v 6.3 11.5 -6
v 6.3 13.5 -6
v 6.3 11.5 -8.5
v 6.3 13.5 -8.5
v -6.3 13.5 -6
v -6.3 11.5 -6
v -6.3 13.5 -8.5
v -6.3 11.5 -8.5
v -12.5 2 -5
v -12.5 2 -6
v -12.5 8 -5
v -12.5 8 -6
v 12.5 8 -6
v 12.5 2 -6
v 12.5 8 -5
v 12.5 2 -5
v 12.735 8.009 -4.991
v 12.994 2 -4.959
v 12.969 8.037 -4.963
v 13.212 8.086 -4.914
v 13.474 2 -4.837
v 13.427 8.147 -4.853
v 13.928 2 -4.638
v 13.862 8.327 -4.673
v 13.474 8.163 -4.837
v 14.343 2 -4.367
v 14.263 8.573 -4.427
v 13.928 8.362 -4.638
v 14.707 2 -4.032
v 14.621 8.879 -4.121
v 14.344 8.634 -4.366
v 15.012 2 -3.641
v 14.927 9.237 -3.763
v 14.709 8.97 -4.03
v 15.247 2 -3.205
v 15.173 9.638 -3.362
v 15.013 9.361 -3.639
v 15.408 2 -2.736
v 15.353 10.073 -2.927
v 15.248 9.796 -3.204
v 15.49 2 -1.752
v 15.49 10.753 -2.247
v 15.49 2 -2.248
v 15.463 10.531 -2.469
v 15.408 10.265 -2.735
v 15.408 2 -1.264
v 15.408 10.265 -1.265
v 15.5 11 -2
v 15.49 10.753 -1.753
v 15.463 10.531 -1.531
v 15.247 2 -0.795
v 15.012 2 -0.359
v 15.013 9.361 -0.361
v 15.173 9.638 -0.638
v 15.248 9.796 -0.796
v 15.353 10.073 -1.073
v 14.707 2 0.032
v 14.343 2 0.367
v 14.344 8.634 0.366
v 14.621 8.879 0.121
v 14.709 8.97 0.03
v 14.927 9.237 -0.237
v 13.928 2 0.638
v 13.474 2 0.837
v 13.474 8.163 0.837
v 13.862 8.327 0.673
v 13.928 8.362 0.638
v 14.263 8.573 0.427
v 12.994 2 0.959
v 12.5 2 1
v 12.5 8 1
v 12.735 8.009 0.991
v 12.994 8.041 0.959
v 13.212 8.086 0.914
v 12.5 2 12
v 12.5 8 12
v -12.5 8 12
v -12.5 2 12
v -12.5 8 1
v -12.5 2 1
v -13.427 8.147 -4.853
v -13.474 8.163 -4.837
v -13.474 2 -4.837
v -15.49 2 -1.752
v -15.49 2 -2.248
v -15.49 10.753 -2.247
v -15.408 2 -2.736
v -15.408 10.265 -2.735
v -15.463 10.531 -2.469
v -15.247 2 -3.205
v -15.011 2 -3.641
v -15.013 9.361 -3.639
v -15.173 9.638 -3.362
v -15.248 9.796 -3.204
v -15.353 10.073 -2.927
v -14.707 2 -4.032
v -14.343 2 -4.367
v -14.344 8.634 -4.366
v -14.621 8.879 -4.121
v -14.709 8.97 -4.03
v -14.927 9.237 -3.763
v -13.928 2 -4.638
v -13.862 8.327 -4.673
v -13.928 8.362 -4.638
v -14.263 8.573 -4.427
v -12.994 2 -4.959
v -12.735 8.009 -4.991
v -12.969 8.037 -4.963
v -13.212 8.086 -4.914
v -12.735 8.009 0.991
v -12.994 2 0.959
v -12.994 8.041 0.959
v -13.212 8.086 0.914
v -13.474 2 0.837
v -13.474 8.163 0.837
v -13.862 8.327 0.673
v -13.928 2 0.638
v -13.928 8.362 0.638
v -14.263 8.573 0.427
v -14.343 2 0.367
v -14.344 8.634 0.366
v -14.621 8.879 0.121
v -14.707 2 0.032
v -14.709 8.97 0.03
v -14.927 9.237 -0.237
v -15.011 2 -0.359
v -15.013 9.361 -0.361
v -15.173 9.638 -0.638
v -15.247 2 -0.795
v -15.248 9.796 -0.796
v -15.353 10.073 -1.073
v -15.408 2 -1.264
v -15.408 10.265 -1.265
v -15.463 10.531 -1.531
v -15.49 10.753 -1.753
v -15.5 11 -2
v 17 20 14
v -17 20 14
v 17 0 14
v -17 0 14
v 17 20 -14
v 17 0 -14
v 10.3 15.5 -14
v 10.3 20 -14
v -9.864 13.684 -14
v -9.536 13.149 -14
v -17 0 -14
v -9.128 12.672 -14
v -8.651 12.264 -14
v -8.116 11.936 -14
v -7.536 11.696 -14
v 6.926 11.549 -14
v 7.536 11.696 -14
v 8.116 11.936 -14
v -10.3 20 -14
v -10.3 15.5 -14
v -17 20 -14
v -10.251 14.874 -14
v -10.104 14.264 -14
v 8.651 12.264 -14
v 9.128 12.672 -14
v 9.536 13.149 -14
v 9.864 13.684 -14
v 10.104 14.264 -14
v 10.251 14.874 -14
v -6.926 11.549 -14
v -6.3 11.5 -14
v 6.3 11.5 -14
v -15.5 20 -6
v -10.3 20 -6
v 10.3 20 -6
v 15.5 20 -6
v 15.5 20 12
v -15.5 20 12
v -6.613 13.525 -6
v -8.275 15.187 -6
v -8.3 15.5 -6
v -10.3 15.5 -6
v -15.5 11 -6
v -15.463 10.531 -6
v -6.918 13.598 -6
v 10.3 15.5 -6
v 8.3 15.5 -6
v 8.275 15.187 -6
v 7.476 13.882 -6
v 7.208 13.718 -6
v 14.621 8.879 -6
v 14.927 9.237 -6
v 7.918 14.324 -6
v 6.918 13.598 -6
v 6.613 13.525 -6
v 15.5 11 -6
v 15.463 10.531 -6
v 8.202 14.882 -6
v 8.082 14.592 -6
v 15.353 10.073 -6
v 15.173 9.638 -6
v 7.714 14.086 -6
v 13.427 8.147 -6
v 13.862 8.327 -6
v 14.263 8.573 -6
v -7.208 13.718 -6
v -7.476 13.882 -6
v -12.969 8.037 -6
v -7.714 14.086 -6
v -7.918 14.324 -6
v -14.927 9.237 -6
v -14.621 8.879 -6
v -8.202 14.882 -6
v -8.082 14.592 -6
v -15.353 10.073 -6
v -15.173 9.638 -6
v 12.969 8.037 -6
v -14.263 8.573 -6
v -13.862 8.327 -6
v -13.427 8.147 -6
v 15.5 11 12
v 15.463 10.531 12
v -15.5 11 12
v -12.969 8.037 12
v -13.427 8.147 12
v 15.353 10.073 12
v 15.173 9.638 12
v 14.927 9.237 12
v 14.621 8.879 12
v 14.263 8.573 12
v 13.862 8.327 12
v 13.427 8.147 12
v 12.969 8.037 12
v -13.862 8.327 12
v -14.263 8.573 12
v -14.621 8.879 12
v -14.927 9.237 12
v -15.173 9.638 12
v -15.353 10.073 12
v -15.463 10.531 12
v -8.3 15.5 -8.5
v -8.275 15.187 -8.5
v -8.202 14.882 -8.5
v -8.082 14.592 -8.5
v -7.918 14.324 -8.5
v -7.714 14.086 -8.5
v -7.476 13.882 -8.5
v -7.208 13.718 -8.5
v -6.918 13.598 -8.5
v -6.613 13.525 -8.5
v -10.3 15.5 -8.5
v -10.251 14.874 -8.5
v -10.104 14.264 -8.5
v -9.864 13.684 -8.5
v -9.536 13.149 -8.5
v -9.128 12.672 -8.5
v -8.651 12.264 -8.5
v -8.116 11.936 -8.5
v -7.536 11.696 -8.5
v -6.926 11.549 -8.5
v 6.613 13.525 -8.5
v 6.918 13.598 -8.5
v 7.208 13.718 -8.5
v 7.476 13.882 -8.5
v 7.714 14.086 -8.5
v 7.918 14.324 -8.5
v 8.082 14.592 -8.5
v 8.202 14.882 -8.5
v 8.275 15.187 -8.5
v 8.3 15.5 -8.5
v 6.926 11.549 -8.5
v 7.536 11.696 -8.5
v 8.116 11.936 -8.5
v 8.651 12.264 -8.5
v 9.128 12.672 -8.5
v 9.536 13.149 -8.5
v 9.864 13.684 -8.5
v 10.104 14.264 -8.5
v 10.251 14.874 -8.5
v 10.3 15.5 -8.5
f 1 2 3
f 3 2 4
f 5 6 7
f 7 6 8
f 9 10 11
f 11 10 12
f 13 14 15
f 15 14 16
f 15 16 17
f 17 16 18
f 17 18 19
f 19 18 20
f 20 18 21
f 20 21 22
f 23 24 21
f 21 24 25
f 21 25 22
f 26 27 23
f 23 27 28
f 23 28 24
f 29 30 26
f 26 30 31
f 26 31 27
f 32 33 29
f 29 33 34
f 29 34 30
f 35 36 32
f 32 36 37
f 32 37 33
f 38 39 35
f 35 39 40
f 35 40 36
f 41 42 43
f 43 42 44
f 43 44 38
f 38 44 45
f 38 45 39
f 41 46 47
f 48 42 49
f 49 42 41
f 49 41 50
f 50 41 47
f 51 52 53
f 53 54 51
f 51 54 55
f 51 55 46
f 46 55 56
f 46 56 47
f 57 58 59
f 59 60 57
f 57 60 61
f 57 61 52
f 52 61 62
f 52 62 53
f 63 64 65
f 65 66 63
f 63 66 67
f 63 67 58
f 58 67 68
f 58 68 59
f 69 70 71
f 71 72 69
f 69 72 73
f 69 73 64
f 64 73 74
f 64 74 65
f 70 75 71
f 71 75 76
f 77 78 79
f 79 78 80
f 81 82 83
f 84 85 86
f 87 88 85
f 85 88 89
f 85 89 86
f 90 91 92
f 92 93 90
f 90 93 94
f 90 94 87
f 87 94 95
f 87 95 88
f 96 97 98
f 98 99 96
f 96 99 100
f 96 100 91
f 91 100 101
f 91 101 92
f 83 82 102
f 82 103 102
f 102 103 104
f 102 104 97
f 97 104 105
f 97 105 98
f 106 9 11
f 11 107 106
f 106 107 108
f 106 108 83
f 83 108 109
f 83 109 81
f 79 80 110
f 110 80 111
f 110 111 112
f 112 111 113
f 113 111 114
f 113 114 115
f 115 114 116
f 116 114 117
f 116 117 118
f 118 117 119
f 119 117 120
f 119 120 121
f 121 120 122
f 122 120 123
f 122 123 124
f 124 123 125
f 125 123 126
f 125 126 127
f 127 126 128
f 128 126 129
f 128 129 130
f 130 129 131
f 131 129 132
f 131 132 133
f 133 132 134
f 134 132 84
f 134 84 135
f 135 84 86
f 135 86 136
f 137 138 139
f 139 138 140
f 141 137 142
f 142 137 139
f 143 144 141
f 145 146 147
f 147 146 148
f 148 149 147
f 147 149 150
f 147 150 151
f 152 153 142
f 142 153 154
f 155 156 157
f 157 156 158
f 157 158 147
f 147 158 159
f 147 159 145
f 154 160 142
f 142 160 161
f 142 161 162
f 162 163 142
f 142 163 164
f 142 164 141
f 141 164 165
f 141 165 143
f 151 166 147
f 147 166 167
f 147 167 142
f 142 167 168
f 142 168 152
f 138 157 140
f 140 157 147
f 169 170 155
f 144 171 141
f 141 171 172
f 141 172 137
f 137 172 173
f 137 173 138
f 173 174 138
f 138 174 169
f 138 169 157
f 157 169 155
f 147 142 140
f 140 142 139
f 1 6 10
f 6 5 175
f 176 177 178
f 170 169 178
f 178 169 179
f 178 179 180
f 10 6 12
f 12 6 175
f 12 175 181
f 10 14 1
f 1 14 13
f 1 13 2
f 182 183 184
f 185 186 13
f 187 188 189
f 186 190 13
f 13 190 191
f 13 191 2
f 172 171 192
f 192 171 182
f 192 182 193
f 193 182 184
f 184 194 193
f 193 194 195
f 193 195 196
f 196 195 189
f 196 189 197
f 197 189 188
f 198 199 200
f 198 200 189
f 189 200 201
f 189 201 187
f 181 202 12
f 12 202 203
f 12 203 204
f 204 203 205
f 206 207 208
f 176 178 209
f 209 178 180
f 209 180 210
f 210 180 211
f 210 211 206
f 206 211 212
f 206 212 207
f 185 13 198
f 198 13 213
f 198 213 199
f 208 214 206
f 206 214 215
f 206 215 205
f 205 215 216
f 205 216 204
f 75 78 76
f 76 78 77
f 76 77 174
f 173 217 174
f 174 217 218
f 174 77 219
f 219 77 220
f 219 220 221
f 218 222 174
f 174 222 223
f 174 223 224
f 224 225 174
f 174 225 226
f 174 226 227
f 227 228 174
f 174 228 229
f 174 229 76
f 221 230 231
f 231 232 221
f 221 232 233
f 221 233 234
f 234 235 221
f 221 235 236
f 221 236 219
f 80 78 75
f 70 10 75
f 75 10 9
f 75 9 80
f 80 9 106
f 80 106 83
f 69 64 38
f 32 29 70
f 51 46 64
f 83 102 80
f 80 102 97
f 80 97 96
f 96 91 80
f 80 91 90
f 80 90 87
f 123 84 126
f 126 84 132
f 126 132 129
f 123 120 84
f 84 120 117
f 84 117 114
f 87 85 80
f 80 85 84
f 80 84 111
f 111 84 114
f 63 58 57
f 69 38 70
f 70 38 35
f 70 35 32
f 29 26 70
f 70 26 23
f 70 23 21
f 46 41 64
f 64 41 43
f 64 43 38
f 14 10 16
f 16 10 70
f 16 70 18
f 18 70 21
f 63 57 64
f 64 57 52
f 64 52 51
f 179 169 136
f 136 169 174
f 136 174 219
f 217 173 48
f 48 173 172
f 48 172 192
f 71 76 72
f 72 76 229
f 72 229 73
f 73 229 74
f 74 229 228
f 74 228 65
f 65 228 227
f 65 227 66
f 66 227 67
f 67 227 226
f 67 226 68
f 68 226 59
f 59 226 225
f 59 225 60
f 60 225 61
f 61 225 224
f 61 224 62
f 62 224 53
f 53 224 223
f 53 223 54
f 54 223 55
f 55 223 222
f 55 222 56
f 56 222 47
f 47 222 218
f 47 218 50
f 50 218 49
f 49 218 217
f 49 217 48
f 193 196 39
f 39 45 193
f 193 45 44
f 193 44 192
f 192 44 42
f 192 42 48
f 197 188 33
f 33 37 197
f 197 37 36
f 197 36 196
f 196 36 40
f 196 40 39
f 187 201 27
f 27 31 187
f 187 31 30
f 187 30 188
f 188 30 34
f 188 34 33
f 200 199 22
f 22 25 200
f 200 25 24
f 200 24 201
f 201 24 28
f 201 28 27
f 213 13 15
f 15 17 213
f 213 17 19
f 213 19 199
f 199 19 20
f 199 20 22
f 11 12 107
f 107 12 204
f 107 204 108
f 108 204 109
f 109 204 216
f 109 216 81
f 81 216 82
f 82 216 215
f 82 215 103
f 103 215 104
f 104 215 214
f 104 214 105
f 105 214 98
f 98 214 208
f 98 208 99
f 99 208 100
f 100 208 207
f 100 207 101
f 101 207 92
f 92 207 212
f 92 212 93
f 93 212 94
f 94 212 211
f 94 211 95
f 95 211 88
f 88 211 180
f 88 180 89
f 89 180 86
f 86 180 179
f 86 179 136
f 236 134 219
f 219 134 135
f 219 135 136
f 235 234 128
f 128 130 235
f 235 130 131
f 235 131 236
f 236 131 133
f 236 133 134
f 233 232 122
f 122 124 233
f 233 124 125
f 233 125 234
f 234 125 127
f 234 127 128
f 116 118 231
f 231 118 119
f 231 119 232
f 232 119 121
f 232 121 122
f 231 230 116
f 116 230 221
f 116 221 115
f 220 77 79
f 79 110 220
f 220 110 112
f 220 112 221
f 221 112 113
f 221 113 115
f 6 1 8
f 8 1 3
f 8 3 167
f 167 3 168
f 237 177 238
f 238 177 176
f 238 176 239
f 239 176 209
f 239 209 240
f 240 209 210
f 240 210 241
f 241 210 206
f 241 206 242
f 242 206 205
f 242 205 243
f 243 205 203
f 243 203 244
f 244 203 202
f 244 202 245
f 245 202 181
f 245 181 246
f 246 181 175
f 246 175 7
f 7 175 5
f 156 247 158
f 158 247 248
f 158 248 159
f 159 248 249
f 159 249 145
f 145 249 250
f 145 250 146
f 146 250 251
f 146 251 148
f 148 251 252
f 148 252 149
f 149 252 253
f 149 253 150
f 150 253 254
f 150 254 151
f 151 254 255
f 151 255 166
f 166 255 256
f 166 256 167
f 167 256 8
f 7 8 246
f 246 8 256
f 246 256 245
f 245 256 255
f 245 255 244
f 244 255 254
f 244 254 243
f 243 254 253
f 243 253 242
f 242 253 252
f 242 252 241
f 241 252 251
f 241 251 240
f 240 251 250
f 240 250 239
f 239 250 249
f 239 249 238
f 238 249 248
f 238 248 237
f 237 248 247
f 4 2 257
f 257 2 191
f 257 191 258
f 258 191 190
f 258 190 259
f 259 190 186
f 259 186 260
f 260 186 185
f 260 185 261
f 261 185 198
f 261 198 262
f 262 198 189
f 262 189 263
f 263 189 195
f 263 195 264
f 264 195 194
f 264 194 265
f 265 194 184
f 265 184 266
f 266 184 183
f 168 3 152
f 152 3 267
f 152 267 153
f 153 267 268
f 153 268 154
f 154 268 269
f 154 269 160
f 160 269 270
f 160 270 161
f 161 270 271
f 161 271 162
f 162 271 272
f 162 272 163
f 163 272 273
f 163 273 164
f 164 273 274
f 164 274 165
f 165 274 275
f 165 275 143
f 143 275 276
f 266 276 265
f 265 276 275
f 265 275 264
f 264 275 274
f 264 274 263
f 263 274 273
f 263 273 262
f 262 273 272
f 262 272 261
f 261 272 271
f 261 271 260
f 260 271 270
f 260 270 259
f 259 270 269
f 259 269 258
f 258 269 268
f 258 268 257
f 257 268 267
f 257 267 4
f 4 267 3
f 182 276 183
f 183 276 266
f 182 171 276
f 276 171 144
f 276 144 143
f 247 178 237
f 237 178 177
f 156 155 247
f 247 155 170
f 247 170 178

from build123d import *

# Parameters (mm, degrees)
SKETCH2_W           = 34
SKETCH2_H           = 28
BOSS_EXTRUDE1_DEPTH = 20
CUT_EXTRUDE1_DEPTH  = 18
SKETCH4_W           = 31
SKETCH4_H           = 18
CUT_EXTRUDE2_DEPTH  = 9
CUT_EXTRUDE3_REACH  = 38.946
SKETCH5_R           = 3
SKETCH8_W           = 12.6
SKETCH8_H           = 8
CUT_EXTRUDE5_DEPTH  = 8.5
SKETCH11_W          = 20.6
SKETCH11_H          = 8
CUT_EXTRUDE6_DEPTH  = 4.5


with BuildPart() as part:
    # Sketch2 → Boss-Extrude1 (new body)
    with BuildSketch(Plane(origin=(0, 0, 0), x_dir=(1, 0, 0), z_dir=(0, 1, 0))):
        Rectangle(SKETCH2_W, SKETCH2_H)
    extrude(amount=BOSS_EXTRUDE1_DEPTH)

    # Sketch3 → Cut-Extrude1 (cut)
    with BuildSketch(Plane(origin=(0, 20, 0), x_dir=(1, 0, 0), z_dir=(0, 1, 0))):
        with BuildLine():
            Line((-12.5, 6), (-12.5, 5))
            ThreePointArc((-12.5, 5), (-15.5, 2), (-12.5, -1))
            Line((-12.5, -1), (-12.5, -12))
            Line((-12.5, -12), (12.5, -12))
            Line((12.5, -12), (12.5, -1))
            ThreePointArc((12.5, -1), (15.5, 2), (12.5, 5))
            Line((12.5, 5), (12.5, 6))
            Line((12.5, 6), (-12.5, 6))
        make_face()
    extrude(amount=-CUT_EXTRUDE1_DEPTH, mode=Mode.SUBTRACT)

    # Sketch4 → Cut-Extrude2 (cut)
    with BuildSketch(Plane(origin=(0, 20, 0), x_dir=(1, 0, 0), z_dir=(0, 1, 0))):
        with Locations((0, -3)):
            Rectangle(SKETCH4_W, SKETCH4_H)
    extrude(amount=-CUT_EXTRUDE2_DEPTH, mode=Mode.SUBTRACT)

    # Cut-Extrude3: up to this face of the body (flat: up to its plane)
    cut_extrude3_end = Plane(part.part.faces().sort_by_distance((0, 11.482142857, -6))[0])
    # Sketch5 → Cut-Extrude3 (cut, up to the picked face)
    with BuildSketch(Plane(origin=(0, 0, 12), x_dir=(-1, 0, 0), z_dir=(0, 0, -1)), mode=Mode.PRIVATE) as cut_extrude3_sk1:
        with Locations((12.5, 11)):
            Circle(SKETCH5_R)
    cut_extrude3_tool1 = split(extrude(cut_extrude3_sk1.sketch, amount=CUT_EXTRUDE3_REACH, mode=Mode.PRIVATE), bisect_by=cut_extrude3_end, keep=Keep.BOTH, mode=Mode.PRIVATE)
    # Sketch5 → Cut-Extrude3 (cut, up to the picked face)
    with BuildSketch(Plane(origin=(0, 0, 12), x_dir=(-1, 0, 0), z_dir=(0, 0, -1)), mode=Mode.PRIVATE) as cut_extrude3_sk2:
        with Locations((-12.5, 11)):
            Circle(SKETCH5_R)
    cut_extrude3_tool2 = split(extrude(cut_extrude3_sk2.sketch, amount=CUT_EXTRUDE3_REACH, mode=Mode.PRIVATE), bisect_by=cut_extrude3_end, keep=Keep.BOTH, mode=Mode.PRIVATE)
    add(cut_extrude3_tool1.solids().sort_by(Axis((-12.5, 11, 12), (0, 0, -1)))[0], mode=Mode.SUBTRACT)
    add(cut_extrude3_tool2.solids().sort_by(Axis((12.5, 11, 12), (0, 0, -1)))[0], mode=Mode.SUBTRACT)

    # Sketch8 → Cut-Extrude5 (cut)
    with BuildSketch(Plane(origin=(0, 20, 0), x_dir=(1, 0, 0), z_dir=(0, 1, 0))):
        with Locations((0, 10)):
            Rectangle(SKETCH8_W, SKETCH8_H)
    extrude(amount=-CUT_EXTRUDE5_DEPTH, mode=Mode.SUBTRACT)

    # Sketch10 → Cut-Revolve1 (revolve, cut)
    with BuildSketch(Plane(origin=(-6.3, 0, 0), x_dir=(0, 0, -1), z_dir=(1, 0, 0))):
        Polygon((6, 15.5), (14, 15.5), (14, 19.5), (8.5, 19.5), (8.5, 17.5), (6, 17.5), align=None)
    cut_revolve1 = revolve(axis=Axis((-6.3, 15.5, -6), (0, 0, -1)), mode=Mode.SUBTRACT)

    # Mirror1: Cut-Revolve1 across plane
    add(cut_revolve1.mirror(Plane(origin=(0, 0, 0), x_dir=(0, 0, 1), z_dir=(1, 0, 0))), mode=Mode.SUBTRACT)

    # Sketch11 → Cut-Extrude6 (cut)
    with BuildSketch(Plane(origin=(0, 20, 0), x_dir=(1, 0, 0), z_dir=(0, 1, 0))):
        with Locations((0, 10)):
            Rectangle(SKETCH11_W, SKETCH11_H)
    extrude(amount=-CUT_EXTRUDE6_DEPTH, mode=Mode.SUBTRACT)


solid = part.part
